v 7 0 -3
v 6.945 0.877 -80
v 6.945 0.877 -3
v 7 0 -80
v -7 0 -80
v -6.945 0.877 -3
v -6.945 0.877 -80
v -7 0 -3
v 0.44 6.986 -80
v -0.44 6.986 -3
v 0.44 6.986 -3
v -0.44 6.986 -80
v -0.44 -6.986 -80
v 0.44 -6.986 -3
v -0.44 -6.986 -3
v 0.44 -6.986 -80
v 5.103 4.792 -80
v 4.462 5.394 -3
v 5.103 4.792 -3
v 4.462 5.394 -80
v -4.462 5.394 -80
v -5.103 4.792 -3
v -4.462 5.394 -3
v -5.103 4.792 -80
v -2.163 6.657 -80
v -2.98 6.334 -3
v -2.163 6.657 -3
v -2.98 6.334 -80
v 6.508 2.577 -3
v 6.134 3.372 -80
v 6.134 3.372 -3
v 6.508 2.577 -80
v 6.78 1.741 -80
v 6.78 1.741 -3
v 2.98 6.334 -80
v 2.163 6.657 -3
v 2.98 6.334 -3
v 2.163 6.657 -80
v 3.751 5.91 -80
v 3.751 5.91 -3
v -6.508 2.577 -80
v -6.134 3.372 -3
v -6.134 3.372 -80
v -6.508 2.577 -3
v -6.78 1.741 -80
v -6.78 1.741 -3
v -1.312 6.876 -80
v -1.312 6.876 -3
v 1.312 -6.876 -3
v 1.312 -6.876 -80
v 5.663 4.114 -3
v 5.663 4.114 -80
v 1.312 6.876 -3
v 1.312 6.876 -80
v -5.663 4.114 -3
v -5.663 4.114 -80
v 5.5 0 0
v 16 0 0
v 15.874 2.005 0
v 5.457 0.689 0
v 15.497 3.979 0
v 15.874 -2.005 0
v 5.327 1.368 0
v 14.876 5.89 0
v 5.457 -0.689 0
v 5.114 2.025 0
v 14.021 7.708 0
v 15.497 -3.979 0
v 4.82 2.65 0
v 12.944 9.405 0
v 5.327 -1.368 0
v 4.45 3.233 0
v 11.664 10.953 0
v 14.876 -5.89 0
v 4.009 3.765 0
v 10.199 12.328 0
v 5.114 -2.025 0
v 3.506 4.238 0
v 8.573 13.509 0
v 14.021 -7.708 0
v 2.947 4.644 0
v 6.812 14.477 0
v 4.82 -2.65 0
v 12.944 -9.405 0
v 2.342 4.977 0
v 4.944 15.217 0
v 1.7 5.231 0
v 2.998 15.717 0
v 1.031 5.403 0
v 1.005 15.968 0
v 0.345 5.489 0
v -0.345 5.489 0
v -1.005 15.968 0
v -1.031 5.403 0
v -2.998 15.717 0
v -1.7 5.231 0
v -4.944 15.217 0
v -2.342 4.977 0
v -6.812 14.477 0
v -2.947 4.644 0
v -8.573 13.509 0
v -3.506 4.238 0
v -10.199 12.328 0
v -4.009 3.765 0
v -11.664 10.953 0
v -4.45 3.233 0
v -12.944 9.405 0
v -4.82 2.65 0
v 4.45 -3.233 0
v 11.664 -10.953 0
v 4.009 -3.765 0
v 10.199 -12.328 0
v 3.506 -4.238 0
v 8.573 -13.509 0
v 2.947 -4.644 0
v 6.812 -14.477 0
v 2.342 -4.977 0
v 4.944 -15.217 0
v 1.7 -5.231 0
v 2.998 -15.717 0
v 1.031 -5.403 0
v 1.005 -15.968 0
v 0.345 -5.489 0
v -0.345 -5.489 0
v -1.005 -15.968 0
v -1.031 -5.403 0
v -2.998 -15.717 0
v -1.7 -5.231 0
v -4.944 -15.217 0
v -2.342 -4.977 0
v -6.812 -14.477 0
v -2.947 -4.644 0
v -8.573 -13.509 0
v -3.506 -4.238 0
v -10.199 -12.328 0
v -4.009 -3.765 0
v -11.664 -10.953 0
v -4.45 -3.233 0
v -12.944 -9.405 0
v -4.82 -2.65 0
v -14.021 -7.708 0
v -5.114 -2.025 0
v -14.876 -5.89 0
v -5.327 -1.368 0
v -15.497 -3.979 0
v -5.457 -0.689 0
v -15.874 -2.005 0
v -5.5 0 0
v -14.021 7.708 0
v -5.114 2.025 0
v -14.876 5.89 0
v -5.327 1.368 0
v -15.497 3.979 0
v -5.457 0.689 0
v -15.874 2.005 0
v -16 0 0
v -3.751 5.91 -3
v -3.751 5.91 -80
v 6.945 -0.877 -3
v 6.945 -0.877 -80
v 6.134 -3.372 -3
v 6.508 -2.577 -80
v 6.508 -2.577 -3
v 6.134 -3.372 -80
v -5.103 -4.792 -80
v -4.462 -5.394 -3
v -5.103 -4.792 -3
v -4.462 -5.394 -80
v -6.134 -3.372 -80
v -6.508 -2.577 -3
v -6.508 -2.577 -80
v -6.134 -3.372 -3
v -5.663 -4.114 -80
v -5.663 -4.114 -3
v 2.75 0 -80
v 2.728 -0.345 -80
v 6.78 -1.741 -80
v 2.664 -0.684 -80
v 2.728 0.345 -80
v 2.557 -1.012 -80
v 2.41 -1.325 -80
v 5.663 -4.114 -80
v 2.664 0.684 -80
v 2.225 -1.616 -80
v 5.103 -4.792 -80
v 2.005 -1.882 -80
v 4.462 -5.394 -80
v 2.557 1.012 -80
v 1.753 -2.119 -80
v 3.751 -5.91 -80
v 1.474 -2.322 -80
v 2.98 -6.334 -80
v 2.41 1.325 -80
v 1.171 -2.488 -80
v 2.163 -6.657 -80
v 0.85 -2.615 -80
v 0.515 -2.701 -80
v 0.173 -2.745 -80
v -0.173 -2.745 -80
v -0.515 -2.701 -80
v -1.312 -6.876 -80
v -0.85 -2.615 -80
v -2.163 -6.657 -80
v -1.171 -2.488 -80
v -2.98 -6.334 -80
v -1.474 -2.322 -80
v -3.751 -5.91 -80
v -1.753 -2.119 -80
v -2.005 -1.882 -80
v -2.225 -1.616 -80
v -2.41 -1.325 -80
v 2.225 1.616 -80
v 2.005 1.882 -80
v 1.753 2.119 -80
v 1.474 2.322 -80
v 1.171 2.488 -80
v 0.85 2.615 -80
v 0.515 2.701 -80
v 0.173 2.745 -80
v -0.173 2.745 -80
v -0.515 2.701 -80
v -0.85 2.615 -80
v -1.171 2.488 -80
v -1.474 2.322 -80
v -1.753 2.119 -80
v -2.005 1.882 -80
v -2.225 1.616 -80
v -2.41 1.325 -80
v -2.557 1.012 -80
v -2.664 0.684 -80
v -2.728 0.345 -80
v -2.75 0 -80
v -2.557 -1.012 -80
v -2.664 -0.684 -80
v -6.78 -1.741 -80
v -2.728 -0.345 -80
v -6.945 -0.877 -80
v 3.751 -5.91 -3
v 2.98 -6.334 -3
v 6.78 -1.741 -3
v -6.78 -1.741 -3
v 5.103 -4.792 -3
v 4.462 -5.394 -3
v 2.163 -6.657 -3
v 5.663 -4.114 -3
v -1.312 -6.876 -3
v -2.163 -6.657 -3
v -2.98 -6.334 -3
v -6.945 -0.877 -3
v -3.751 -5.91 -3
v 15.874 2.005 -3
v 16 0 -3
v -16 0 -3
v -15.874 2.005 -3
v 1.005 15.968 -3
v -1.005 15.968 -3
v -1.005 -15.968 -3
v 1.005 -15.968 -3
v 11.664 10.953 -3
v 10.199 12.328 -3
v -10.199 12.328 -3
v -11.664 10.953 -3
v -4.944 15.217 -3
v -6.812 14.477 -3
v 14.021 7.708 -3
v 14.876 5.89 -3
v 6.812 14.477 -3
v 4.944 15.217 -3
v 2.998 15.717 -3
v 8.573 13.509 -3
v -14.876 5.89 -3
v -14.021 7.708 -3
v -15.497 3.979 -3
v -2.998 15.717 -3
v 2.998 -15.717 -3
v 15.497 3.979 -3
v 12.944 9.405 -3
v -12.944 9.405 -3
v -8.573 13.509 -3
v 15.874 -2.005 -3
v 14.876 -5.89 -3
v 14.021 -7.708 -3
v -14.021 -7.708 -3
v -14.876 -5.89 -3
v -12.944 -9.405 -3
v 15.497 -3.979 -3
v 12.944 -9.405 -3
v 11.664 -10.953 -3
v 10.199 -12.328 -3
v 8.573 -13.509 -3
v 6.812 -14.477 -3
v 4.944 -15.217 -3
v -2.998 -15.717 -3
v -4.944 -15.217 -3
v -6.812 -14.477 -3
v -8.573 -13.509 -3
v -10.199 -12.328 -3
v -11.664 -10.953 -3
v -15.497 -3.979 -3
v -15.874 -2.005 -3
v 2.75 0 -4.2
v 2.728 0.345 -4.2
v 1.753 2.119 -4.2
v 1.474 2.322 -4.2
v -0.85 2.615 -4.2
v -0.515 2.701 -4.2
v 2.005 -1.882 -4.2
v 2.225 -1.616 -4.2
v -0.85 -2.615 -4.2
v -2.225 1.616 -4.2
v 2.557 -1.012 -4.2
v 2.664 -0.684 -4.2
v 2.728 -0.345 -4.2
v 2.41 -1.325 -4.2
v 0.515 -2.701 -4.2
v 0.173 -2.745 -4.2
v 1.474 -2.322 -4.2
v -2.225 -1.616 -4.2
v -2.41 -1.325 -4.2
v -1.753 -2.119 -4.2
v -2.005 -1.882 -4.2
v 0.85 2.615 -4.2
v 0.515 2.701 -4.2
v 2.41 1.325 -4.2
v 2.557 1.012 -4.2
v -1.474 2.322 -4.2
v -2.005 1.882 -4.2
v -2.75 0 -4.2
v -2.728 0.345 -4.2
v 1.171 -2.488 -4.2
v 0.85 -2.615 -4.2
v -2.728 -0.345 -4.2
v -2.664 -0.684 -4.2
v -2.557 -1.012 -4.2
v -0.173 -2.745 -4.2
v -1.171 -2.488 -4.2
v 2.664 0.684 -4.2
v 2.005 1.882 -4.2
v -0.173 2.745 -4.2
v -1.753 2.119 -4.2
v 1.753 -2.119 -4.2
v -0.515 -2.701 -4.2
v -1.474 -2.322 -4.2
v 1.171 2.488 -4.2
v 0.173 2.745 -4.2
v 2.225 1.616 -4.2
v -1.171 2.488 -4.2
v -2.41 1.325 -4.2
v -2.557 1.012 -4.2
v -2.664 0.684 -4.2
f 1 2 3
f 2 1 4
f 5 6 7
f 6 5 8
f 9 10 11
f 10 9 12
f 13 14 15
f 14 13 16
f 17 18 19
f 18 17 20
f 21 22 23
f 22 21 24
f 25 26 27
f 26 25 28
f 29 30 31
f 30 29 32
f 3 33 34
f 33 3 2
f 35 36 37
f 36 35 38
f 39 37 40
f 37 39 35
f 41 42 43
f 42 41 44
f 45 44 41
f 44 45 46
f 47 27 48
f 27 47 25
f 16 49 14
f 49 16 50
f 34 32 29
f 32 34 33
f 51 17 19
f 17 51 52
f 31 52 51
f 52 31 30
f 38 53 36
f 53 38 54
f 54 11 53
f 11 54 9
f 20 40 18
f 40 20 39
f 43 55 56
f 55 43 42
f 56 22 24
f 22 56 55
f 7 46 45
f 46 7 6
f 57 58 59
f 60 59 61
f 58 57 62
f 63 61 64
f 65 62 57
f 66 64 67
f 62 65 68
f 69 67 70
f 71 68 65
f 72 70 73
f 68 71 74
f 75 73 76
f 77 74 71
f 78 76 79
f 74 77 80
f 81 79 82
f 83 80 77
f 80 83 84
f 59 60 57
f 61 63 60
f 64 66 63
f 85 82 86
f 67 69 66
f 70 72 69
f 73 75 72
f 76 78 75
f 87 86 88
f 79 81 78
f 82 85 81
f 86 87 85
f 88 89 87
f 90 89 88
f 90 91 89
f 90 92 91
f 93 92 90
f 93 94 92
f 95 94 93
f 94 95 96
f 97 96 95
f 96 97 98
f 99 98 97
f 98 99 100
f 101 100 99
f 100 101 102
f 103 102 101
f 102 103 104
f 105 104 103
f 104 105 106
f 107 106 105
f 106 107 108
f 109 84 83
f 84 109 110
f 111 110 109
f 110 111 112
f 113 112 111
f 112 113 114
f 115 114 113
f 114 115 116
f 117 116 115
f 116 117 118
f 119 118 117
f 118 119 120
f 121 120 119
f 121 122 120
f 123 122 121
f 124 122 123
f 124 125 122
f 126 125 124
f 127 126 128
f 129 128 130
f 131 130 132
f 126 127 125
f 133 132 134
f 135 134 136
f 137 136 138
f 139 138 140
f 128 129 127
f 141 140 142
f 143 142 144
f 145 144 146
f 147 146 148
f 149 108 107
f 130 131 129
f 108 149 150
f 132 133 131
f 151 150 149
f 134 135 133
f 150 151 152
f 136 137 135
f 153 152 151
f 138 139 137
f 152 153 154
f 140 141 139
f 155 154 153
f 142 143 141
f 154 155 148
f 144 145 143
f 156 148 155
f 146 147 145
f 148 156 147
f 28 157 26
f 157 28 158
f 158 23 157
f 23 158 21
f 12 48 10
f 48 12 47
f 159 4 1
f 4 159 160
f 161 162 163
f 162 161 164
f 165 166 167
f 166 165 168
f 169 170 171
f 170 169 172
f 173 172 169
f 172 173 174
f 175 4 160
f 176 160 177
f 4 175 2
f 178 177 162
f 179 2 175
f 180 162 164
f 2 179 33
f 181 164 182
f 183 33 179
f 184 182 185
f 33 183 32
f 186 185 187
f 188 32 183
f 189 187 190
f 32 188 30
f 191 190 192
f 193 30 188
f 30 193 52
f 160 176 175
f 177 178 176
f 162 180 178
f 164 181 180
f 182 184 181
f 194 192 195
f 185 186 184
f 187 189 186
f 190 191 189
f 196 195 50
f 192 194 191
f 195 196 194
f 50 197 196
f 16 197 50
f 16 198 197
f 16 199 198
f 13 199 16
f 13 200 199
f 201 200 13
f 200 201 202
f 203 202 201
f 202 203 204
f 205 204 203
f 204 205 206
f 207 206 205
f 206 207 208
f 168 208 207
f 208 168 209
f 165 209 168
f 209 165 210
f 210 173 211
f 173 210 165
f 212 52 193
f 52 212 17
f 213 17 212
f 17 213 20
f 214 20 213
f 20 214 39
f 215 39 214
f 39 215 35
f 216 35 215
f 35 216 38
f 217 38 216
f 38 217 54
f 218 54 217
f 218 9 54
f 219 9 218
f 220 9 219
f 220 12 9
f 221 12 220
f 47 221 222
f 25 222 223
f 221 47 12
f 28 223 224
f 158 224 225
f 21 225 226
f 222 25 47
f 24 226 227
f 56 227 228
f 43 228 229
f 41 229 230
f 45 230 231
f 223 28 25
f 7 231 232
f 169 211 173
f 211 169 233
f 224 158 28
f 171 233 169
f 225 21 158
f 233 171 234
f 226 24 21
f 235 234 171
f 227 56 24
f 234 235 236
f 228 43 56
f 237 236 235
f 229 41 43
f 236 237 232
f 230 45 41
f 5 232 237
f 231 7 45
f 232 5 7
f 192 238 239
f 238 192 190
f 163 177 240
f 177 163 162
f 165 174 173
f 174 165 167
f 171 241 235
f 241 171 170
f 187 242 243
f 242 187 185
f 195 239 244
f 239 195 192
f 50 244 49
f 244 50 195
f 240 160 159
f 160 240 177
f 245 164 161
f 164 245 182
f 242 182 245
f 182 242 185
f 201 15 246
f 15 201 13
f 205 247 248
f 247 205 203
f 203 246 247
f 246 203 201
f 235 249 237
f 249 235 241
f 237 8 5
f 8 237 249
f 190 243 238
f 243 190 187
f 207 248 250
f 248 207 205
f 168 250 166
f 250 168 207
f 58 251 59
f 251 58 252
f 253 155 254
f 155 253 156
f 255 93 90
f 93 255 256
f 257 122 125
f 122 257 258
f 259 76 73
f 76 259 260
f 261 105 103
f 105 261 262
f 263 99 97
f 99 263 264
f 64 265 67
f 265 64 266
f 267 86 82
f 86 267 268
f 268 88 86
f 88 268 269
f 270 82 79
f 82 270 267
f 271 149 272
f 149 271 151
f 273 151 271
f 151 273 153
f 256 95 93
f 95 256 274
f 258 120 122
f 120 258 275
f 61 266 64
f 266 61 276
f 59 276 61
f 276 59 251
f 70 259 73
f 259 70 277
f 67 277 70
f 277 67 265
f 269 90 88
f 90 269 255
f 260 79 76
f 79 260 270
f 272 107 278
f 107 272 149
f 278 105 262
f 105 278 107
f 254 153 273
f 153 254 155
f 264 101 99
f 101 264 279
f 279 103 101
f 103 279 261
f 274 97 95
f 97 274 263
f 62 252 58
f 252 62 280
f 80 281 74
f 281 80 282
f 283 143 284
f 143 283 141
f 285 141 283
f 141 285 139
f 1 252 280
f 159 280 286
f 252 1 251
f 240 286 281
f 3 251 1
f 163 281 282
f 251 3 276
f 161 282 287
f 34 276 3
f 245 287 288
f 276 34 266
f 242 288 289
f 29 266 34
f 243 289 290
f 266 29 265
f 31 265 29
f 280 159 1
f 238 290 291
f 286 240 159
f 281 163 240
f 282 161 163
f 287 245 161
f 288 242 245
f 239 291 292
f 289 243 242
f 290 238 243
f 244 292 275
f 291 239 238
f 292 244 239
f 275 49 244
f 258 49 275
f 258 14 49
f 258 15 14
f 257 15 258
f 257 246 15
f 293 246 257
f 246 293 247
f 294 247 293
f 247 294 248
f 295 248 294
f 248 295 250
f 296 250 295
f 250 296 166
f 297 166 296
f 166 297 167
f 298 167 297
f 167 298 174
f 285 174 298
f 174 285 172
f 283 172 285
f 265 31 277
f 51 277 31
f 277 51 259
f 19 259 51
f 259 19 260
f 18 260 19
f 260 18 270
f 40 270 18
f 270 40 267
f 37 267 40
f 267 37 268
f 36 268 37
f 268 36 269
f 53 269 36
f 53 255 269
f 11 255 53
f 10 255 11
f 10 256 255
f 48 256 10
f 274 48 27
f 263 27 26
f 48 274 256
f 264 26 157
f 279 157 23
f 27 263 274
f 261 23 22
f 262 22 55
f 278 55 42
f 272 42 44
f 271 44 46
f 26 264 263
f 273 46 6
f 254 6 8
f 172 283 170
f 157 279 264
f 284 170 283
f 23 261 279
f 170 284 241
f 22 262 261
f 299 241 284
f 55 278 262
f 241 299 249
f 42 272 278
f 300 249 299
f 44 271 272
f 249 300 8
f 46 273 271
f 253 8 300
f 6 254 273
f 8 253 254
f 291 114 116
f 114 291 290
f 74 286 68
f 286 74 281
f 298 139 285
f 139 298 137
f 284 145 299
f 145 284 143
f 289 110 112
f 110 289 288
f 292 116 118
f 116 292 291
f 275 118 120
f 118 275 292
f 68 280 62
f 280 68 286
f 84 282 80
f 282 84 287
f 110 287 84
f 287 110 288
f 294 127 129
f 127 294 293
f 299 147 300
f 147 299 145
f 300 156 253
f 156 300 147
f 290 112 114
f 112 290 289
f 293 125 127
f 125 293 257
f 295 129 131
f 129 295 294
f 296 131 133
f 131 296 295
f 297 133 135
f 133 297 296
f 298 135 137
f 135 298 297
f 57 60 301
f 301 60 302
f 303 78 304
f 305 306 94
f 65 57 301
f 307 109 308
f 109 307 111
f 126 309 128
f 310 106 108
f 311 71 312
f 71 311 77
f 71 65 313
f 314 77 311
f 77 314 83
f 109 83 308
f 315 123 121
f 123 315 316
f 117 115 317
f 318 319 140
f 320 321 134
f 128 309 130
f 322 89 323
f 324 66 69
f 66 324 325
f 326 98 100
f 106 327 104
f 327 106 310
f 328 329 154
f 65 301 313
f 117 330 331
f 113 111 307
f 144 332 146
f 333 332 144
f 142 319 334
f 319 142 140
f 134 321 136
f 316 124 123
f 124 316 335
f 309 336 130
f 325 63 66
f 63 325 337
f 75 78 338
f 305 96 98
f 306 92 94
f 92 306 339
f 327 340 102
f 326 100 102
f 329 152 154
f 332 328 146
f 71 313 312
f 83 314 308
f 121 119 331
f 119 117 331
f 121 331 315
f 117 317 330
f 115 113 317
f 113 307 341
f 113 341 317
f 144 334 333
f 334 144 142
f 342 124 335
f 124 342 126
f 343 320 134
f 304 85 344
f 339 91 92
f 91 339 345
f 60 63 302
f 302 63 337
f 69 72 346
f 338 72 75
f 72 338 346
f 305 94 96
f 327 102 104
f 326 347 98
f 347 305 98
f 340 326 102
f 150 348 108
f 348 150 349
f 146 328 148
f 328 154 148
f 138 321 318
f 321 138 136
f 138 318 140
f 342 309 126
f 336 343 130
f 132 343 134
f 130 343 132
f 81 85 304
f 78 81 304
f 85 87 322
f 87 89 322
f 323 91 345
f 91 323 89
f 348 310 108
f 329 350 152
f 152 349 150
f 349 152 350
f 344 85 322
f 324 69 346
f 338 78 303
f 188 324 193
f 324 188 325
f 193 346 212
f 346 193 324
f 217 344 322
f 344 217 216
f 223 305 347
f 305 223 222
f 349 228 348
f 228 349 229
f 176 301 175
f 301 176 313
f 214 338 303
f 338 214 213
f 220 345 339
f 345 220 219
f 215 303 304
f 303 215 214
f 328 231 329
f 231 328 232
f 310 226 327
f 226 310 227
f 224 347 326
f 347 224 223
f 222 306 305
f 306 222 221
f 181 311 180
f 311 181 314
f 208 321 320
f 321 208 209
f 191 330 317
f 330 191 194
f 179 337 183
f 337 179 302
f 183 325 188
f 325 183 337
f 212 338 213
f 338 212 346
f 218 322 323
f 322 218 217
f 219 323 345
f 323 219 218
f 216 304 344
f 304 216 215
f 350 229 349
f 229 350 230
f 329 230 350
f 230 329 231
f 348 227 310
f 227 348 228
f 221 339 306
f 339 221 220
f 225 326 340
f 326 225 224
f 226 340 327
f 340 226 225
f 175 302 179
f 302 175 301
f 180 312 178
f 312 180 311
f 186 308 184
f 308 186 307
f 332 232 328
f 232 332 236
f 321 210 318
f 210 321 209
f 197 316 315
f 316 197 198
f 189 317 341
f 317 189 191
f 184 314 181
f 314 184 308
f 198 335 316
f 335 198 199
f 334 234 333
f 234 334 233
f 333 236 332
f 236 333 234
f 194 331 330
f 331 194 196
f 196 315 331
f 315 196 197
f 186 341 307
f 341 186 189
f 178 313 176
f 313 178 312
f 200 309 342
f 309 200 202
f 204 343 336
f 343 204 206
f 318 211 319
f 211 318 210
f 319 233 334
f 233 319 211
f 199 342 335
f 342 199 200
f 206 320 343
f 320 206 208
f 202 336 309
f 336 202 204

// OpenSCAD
$fn = 50;


difference() {
	union() {
		translate(v = [0, 0, -80.0000000000]) {
			cylinder(h = 80, r = 7.0000000000);
		}
		translate(v = [0, 0, -3.0000000000]) {
			cylinder(h = 3, r = 16.0000000000);
		}
	}
	union() {
		translate(v = [0, 0, 0]) {
			rotate(a = [0, 0, 0]) {
				difference() {
					union() {
						#translate(v = [0, 0, -80.0000000000]) {
							cylinder(h = 80, r = 2.2500000000);
						}
						#translate(v = [0, 0, -4.2000000000]) {
							cylinder(h = 4.2000000000, r1 = 2.7500000000, r2 = 5.5000000000);
						}
						#translate(v = [0, 0, -80.0000000000]) {
							cylinder(h = 80, r = 2.7500000000);
						}
						#translate(v = [0, 0, -80.0000000000]) {
							cylinder(h = 80, r = 2.2500000000);
						}
					}
					union();
				}
			}
		}
	}
}
